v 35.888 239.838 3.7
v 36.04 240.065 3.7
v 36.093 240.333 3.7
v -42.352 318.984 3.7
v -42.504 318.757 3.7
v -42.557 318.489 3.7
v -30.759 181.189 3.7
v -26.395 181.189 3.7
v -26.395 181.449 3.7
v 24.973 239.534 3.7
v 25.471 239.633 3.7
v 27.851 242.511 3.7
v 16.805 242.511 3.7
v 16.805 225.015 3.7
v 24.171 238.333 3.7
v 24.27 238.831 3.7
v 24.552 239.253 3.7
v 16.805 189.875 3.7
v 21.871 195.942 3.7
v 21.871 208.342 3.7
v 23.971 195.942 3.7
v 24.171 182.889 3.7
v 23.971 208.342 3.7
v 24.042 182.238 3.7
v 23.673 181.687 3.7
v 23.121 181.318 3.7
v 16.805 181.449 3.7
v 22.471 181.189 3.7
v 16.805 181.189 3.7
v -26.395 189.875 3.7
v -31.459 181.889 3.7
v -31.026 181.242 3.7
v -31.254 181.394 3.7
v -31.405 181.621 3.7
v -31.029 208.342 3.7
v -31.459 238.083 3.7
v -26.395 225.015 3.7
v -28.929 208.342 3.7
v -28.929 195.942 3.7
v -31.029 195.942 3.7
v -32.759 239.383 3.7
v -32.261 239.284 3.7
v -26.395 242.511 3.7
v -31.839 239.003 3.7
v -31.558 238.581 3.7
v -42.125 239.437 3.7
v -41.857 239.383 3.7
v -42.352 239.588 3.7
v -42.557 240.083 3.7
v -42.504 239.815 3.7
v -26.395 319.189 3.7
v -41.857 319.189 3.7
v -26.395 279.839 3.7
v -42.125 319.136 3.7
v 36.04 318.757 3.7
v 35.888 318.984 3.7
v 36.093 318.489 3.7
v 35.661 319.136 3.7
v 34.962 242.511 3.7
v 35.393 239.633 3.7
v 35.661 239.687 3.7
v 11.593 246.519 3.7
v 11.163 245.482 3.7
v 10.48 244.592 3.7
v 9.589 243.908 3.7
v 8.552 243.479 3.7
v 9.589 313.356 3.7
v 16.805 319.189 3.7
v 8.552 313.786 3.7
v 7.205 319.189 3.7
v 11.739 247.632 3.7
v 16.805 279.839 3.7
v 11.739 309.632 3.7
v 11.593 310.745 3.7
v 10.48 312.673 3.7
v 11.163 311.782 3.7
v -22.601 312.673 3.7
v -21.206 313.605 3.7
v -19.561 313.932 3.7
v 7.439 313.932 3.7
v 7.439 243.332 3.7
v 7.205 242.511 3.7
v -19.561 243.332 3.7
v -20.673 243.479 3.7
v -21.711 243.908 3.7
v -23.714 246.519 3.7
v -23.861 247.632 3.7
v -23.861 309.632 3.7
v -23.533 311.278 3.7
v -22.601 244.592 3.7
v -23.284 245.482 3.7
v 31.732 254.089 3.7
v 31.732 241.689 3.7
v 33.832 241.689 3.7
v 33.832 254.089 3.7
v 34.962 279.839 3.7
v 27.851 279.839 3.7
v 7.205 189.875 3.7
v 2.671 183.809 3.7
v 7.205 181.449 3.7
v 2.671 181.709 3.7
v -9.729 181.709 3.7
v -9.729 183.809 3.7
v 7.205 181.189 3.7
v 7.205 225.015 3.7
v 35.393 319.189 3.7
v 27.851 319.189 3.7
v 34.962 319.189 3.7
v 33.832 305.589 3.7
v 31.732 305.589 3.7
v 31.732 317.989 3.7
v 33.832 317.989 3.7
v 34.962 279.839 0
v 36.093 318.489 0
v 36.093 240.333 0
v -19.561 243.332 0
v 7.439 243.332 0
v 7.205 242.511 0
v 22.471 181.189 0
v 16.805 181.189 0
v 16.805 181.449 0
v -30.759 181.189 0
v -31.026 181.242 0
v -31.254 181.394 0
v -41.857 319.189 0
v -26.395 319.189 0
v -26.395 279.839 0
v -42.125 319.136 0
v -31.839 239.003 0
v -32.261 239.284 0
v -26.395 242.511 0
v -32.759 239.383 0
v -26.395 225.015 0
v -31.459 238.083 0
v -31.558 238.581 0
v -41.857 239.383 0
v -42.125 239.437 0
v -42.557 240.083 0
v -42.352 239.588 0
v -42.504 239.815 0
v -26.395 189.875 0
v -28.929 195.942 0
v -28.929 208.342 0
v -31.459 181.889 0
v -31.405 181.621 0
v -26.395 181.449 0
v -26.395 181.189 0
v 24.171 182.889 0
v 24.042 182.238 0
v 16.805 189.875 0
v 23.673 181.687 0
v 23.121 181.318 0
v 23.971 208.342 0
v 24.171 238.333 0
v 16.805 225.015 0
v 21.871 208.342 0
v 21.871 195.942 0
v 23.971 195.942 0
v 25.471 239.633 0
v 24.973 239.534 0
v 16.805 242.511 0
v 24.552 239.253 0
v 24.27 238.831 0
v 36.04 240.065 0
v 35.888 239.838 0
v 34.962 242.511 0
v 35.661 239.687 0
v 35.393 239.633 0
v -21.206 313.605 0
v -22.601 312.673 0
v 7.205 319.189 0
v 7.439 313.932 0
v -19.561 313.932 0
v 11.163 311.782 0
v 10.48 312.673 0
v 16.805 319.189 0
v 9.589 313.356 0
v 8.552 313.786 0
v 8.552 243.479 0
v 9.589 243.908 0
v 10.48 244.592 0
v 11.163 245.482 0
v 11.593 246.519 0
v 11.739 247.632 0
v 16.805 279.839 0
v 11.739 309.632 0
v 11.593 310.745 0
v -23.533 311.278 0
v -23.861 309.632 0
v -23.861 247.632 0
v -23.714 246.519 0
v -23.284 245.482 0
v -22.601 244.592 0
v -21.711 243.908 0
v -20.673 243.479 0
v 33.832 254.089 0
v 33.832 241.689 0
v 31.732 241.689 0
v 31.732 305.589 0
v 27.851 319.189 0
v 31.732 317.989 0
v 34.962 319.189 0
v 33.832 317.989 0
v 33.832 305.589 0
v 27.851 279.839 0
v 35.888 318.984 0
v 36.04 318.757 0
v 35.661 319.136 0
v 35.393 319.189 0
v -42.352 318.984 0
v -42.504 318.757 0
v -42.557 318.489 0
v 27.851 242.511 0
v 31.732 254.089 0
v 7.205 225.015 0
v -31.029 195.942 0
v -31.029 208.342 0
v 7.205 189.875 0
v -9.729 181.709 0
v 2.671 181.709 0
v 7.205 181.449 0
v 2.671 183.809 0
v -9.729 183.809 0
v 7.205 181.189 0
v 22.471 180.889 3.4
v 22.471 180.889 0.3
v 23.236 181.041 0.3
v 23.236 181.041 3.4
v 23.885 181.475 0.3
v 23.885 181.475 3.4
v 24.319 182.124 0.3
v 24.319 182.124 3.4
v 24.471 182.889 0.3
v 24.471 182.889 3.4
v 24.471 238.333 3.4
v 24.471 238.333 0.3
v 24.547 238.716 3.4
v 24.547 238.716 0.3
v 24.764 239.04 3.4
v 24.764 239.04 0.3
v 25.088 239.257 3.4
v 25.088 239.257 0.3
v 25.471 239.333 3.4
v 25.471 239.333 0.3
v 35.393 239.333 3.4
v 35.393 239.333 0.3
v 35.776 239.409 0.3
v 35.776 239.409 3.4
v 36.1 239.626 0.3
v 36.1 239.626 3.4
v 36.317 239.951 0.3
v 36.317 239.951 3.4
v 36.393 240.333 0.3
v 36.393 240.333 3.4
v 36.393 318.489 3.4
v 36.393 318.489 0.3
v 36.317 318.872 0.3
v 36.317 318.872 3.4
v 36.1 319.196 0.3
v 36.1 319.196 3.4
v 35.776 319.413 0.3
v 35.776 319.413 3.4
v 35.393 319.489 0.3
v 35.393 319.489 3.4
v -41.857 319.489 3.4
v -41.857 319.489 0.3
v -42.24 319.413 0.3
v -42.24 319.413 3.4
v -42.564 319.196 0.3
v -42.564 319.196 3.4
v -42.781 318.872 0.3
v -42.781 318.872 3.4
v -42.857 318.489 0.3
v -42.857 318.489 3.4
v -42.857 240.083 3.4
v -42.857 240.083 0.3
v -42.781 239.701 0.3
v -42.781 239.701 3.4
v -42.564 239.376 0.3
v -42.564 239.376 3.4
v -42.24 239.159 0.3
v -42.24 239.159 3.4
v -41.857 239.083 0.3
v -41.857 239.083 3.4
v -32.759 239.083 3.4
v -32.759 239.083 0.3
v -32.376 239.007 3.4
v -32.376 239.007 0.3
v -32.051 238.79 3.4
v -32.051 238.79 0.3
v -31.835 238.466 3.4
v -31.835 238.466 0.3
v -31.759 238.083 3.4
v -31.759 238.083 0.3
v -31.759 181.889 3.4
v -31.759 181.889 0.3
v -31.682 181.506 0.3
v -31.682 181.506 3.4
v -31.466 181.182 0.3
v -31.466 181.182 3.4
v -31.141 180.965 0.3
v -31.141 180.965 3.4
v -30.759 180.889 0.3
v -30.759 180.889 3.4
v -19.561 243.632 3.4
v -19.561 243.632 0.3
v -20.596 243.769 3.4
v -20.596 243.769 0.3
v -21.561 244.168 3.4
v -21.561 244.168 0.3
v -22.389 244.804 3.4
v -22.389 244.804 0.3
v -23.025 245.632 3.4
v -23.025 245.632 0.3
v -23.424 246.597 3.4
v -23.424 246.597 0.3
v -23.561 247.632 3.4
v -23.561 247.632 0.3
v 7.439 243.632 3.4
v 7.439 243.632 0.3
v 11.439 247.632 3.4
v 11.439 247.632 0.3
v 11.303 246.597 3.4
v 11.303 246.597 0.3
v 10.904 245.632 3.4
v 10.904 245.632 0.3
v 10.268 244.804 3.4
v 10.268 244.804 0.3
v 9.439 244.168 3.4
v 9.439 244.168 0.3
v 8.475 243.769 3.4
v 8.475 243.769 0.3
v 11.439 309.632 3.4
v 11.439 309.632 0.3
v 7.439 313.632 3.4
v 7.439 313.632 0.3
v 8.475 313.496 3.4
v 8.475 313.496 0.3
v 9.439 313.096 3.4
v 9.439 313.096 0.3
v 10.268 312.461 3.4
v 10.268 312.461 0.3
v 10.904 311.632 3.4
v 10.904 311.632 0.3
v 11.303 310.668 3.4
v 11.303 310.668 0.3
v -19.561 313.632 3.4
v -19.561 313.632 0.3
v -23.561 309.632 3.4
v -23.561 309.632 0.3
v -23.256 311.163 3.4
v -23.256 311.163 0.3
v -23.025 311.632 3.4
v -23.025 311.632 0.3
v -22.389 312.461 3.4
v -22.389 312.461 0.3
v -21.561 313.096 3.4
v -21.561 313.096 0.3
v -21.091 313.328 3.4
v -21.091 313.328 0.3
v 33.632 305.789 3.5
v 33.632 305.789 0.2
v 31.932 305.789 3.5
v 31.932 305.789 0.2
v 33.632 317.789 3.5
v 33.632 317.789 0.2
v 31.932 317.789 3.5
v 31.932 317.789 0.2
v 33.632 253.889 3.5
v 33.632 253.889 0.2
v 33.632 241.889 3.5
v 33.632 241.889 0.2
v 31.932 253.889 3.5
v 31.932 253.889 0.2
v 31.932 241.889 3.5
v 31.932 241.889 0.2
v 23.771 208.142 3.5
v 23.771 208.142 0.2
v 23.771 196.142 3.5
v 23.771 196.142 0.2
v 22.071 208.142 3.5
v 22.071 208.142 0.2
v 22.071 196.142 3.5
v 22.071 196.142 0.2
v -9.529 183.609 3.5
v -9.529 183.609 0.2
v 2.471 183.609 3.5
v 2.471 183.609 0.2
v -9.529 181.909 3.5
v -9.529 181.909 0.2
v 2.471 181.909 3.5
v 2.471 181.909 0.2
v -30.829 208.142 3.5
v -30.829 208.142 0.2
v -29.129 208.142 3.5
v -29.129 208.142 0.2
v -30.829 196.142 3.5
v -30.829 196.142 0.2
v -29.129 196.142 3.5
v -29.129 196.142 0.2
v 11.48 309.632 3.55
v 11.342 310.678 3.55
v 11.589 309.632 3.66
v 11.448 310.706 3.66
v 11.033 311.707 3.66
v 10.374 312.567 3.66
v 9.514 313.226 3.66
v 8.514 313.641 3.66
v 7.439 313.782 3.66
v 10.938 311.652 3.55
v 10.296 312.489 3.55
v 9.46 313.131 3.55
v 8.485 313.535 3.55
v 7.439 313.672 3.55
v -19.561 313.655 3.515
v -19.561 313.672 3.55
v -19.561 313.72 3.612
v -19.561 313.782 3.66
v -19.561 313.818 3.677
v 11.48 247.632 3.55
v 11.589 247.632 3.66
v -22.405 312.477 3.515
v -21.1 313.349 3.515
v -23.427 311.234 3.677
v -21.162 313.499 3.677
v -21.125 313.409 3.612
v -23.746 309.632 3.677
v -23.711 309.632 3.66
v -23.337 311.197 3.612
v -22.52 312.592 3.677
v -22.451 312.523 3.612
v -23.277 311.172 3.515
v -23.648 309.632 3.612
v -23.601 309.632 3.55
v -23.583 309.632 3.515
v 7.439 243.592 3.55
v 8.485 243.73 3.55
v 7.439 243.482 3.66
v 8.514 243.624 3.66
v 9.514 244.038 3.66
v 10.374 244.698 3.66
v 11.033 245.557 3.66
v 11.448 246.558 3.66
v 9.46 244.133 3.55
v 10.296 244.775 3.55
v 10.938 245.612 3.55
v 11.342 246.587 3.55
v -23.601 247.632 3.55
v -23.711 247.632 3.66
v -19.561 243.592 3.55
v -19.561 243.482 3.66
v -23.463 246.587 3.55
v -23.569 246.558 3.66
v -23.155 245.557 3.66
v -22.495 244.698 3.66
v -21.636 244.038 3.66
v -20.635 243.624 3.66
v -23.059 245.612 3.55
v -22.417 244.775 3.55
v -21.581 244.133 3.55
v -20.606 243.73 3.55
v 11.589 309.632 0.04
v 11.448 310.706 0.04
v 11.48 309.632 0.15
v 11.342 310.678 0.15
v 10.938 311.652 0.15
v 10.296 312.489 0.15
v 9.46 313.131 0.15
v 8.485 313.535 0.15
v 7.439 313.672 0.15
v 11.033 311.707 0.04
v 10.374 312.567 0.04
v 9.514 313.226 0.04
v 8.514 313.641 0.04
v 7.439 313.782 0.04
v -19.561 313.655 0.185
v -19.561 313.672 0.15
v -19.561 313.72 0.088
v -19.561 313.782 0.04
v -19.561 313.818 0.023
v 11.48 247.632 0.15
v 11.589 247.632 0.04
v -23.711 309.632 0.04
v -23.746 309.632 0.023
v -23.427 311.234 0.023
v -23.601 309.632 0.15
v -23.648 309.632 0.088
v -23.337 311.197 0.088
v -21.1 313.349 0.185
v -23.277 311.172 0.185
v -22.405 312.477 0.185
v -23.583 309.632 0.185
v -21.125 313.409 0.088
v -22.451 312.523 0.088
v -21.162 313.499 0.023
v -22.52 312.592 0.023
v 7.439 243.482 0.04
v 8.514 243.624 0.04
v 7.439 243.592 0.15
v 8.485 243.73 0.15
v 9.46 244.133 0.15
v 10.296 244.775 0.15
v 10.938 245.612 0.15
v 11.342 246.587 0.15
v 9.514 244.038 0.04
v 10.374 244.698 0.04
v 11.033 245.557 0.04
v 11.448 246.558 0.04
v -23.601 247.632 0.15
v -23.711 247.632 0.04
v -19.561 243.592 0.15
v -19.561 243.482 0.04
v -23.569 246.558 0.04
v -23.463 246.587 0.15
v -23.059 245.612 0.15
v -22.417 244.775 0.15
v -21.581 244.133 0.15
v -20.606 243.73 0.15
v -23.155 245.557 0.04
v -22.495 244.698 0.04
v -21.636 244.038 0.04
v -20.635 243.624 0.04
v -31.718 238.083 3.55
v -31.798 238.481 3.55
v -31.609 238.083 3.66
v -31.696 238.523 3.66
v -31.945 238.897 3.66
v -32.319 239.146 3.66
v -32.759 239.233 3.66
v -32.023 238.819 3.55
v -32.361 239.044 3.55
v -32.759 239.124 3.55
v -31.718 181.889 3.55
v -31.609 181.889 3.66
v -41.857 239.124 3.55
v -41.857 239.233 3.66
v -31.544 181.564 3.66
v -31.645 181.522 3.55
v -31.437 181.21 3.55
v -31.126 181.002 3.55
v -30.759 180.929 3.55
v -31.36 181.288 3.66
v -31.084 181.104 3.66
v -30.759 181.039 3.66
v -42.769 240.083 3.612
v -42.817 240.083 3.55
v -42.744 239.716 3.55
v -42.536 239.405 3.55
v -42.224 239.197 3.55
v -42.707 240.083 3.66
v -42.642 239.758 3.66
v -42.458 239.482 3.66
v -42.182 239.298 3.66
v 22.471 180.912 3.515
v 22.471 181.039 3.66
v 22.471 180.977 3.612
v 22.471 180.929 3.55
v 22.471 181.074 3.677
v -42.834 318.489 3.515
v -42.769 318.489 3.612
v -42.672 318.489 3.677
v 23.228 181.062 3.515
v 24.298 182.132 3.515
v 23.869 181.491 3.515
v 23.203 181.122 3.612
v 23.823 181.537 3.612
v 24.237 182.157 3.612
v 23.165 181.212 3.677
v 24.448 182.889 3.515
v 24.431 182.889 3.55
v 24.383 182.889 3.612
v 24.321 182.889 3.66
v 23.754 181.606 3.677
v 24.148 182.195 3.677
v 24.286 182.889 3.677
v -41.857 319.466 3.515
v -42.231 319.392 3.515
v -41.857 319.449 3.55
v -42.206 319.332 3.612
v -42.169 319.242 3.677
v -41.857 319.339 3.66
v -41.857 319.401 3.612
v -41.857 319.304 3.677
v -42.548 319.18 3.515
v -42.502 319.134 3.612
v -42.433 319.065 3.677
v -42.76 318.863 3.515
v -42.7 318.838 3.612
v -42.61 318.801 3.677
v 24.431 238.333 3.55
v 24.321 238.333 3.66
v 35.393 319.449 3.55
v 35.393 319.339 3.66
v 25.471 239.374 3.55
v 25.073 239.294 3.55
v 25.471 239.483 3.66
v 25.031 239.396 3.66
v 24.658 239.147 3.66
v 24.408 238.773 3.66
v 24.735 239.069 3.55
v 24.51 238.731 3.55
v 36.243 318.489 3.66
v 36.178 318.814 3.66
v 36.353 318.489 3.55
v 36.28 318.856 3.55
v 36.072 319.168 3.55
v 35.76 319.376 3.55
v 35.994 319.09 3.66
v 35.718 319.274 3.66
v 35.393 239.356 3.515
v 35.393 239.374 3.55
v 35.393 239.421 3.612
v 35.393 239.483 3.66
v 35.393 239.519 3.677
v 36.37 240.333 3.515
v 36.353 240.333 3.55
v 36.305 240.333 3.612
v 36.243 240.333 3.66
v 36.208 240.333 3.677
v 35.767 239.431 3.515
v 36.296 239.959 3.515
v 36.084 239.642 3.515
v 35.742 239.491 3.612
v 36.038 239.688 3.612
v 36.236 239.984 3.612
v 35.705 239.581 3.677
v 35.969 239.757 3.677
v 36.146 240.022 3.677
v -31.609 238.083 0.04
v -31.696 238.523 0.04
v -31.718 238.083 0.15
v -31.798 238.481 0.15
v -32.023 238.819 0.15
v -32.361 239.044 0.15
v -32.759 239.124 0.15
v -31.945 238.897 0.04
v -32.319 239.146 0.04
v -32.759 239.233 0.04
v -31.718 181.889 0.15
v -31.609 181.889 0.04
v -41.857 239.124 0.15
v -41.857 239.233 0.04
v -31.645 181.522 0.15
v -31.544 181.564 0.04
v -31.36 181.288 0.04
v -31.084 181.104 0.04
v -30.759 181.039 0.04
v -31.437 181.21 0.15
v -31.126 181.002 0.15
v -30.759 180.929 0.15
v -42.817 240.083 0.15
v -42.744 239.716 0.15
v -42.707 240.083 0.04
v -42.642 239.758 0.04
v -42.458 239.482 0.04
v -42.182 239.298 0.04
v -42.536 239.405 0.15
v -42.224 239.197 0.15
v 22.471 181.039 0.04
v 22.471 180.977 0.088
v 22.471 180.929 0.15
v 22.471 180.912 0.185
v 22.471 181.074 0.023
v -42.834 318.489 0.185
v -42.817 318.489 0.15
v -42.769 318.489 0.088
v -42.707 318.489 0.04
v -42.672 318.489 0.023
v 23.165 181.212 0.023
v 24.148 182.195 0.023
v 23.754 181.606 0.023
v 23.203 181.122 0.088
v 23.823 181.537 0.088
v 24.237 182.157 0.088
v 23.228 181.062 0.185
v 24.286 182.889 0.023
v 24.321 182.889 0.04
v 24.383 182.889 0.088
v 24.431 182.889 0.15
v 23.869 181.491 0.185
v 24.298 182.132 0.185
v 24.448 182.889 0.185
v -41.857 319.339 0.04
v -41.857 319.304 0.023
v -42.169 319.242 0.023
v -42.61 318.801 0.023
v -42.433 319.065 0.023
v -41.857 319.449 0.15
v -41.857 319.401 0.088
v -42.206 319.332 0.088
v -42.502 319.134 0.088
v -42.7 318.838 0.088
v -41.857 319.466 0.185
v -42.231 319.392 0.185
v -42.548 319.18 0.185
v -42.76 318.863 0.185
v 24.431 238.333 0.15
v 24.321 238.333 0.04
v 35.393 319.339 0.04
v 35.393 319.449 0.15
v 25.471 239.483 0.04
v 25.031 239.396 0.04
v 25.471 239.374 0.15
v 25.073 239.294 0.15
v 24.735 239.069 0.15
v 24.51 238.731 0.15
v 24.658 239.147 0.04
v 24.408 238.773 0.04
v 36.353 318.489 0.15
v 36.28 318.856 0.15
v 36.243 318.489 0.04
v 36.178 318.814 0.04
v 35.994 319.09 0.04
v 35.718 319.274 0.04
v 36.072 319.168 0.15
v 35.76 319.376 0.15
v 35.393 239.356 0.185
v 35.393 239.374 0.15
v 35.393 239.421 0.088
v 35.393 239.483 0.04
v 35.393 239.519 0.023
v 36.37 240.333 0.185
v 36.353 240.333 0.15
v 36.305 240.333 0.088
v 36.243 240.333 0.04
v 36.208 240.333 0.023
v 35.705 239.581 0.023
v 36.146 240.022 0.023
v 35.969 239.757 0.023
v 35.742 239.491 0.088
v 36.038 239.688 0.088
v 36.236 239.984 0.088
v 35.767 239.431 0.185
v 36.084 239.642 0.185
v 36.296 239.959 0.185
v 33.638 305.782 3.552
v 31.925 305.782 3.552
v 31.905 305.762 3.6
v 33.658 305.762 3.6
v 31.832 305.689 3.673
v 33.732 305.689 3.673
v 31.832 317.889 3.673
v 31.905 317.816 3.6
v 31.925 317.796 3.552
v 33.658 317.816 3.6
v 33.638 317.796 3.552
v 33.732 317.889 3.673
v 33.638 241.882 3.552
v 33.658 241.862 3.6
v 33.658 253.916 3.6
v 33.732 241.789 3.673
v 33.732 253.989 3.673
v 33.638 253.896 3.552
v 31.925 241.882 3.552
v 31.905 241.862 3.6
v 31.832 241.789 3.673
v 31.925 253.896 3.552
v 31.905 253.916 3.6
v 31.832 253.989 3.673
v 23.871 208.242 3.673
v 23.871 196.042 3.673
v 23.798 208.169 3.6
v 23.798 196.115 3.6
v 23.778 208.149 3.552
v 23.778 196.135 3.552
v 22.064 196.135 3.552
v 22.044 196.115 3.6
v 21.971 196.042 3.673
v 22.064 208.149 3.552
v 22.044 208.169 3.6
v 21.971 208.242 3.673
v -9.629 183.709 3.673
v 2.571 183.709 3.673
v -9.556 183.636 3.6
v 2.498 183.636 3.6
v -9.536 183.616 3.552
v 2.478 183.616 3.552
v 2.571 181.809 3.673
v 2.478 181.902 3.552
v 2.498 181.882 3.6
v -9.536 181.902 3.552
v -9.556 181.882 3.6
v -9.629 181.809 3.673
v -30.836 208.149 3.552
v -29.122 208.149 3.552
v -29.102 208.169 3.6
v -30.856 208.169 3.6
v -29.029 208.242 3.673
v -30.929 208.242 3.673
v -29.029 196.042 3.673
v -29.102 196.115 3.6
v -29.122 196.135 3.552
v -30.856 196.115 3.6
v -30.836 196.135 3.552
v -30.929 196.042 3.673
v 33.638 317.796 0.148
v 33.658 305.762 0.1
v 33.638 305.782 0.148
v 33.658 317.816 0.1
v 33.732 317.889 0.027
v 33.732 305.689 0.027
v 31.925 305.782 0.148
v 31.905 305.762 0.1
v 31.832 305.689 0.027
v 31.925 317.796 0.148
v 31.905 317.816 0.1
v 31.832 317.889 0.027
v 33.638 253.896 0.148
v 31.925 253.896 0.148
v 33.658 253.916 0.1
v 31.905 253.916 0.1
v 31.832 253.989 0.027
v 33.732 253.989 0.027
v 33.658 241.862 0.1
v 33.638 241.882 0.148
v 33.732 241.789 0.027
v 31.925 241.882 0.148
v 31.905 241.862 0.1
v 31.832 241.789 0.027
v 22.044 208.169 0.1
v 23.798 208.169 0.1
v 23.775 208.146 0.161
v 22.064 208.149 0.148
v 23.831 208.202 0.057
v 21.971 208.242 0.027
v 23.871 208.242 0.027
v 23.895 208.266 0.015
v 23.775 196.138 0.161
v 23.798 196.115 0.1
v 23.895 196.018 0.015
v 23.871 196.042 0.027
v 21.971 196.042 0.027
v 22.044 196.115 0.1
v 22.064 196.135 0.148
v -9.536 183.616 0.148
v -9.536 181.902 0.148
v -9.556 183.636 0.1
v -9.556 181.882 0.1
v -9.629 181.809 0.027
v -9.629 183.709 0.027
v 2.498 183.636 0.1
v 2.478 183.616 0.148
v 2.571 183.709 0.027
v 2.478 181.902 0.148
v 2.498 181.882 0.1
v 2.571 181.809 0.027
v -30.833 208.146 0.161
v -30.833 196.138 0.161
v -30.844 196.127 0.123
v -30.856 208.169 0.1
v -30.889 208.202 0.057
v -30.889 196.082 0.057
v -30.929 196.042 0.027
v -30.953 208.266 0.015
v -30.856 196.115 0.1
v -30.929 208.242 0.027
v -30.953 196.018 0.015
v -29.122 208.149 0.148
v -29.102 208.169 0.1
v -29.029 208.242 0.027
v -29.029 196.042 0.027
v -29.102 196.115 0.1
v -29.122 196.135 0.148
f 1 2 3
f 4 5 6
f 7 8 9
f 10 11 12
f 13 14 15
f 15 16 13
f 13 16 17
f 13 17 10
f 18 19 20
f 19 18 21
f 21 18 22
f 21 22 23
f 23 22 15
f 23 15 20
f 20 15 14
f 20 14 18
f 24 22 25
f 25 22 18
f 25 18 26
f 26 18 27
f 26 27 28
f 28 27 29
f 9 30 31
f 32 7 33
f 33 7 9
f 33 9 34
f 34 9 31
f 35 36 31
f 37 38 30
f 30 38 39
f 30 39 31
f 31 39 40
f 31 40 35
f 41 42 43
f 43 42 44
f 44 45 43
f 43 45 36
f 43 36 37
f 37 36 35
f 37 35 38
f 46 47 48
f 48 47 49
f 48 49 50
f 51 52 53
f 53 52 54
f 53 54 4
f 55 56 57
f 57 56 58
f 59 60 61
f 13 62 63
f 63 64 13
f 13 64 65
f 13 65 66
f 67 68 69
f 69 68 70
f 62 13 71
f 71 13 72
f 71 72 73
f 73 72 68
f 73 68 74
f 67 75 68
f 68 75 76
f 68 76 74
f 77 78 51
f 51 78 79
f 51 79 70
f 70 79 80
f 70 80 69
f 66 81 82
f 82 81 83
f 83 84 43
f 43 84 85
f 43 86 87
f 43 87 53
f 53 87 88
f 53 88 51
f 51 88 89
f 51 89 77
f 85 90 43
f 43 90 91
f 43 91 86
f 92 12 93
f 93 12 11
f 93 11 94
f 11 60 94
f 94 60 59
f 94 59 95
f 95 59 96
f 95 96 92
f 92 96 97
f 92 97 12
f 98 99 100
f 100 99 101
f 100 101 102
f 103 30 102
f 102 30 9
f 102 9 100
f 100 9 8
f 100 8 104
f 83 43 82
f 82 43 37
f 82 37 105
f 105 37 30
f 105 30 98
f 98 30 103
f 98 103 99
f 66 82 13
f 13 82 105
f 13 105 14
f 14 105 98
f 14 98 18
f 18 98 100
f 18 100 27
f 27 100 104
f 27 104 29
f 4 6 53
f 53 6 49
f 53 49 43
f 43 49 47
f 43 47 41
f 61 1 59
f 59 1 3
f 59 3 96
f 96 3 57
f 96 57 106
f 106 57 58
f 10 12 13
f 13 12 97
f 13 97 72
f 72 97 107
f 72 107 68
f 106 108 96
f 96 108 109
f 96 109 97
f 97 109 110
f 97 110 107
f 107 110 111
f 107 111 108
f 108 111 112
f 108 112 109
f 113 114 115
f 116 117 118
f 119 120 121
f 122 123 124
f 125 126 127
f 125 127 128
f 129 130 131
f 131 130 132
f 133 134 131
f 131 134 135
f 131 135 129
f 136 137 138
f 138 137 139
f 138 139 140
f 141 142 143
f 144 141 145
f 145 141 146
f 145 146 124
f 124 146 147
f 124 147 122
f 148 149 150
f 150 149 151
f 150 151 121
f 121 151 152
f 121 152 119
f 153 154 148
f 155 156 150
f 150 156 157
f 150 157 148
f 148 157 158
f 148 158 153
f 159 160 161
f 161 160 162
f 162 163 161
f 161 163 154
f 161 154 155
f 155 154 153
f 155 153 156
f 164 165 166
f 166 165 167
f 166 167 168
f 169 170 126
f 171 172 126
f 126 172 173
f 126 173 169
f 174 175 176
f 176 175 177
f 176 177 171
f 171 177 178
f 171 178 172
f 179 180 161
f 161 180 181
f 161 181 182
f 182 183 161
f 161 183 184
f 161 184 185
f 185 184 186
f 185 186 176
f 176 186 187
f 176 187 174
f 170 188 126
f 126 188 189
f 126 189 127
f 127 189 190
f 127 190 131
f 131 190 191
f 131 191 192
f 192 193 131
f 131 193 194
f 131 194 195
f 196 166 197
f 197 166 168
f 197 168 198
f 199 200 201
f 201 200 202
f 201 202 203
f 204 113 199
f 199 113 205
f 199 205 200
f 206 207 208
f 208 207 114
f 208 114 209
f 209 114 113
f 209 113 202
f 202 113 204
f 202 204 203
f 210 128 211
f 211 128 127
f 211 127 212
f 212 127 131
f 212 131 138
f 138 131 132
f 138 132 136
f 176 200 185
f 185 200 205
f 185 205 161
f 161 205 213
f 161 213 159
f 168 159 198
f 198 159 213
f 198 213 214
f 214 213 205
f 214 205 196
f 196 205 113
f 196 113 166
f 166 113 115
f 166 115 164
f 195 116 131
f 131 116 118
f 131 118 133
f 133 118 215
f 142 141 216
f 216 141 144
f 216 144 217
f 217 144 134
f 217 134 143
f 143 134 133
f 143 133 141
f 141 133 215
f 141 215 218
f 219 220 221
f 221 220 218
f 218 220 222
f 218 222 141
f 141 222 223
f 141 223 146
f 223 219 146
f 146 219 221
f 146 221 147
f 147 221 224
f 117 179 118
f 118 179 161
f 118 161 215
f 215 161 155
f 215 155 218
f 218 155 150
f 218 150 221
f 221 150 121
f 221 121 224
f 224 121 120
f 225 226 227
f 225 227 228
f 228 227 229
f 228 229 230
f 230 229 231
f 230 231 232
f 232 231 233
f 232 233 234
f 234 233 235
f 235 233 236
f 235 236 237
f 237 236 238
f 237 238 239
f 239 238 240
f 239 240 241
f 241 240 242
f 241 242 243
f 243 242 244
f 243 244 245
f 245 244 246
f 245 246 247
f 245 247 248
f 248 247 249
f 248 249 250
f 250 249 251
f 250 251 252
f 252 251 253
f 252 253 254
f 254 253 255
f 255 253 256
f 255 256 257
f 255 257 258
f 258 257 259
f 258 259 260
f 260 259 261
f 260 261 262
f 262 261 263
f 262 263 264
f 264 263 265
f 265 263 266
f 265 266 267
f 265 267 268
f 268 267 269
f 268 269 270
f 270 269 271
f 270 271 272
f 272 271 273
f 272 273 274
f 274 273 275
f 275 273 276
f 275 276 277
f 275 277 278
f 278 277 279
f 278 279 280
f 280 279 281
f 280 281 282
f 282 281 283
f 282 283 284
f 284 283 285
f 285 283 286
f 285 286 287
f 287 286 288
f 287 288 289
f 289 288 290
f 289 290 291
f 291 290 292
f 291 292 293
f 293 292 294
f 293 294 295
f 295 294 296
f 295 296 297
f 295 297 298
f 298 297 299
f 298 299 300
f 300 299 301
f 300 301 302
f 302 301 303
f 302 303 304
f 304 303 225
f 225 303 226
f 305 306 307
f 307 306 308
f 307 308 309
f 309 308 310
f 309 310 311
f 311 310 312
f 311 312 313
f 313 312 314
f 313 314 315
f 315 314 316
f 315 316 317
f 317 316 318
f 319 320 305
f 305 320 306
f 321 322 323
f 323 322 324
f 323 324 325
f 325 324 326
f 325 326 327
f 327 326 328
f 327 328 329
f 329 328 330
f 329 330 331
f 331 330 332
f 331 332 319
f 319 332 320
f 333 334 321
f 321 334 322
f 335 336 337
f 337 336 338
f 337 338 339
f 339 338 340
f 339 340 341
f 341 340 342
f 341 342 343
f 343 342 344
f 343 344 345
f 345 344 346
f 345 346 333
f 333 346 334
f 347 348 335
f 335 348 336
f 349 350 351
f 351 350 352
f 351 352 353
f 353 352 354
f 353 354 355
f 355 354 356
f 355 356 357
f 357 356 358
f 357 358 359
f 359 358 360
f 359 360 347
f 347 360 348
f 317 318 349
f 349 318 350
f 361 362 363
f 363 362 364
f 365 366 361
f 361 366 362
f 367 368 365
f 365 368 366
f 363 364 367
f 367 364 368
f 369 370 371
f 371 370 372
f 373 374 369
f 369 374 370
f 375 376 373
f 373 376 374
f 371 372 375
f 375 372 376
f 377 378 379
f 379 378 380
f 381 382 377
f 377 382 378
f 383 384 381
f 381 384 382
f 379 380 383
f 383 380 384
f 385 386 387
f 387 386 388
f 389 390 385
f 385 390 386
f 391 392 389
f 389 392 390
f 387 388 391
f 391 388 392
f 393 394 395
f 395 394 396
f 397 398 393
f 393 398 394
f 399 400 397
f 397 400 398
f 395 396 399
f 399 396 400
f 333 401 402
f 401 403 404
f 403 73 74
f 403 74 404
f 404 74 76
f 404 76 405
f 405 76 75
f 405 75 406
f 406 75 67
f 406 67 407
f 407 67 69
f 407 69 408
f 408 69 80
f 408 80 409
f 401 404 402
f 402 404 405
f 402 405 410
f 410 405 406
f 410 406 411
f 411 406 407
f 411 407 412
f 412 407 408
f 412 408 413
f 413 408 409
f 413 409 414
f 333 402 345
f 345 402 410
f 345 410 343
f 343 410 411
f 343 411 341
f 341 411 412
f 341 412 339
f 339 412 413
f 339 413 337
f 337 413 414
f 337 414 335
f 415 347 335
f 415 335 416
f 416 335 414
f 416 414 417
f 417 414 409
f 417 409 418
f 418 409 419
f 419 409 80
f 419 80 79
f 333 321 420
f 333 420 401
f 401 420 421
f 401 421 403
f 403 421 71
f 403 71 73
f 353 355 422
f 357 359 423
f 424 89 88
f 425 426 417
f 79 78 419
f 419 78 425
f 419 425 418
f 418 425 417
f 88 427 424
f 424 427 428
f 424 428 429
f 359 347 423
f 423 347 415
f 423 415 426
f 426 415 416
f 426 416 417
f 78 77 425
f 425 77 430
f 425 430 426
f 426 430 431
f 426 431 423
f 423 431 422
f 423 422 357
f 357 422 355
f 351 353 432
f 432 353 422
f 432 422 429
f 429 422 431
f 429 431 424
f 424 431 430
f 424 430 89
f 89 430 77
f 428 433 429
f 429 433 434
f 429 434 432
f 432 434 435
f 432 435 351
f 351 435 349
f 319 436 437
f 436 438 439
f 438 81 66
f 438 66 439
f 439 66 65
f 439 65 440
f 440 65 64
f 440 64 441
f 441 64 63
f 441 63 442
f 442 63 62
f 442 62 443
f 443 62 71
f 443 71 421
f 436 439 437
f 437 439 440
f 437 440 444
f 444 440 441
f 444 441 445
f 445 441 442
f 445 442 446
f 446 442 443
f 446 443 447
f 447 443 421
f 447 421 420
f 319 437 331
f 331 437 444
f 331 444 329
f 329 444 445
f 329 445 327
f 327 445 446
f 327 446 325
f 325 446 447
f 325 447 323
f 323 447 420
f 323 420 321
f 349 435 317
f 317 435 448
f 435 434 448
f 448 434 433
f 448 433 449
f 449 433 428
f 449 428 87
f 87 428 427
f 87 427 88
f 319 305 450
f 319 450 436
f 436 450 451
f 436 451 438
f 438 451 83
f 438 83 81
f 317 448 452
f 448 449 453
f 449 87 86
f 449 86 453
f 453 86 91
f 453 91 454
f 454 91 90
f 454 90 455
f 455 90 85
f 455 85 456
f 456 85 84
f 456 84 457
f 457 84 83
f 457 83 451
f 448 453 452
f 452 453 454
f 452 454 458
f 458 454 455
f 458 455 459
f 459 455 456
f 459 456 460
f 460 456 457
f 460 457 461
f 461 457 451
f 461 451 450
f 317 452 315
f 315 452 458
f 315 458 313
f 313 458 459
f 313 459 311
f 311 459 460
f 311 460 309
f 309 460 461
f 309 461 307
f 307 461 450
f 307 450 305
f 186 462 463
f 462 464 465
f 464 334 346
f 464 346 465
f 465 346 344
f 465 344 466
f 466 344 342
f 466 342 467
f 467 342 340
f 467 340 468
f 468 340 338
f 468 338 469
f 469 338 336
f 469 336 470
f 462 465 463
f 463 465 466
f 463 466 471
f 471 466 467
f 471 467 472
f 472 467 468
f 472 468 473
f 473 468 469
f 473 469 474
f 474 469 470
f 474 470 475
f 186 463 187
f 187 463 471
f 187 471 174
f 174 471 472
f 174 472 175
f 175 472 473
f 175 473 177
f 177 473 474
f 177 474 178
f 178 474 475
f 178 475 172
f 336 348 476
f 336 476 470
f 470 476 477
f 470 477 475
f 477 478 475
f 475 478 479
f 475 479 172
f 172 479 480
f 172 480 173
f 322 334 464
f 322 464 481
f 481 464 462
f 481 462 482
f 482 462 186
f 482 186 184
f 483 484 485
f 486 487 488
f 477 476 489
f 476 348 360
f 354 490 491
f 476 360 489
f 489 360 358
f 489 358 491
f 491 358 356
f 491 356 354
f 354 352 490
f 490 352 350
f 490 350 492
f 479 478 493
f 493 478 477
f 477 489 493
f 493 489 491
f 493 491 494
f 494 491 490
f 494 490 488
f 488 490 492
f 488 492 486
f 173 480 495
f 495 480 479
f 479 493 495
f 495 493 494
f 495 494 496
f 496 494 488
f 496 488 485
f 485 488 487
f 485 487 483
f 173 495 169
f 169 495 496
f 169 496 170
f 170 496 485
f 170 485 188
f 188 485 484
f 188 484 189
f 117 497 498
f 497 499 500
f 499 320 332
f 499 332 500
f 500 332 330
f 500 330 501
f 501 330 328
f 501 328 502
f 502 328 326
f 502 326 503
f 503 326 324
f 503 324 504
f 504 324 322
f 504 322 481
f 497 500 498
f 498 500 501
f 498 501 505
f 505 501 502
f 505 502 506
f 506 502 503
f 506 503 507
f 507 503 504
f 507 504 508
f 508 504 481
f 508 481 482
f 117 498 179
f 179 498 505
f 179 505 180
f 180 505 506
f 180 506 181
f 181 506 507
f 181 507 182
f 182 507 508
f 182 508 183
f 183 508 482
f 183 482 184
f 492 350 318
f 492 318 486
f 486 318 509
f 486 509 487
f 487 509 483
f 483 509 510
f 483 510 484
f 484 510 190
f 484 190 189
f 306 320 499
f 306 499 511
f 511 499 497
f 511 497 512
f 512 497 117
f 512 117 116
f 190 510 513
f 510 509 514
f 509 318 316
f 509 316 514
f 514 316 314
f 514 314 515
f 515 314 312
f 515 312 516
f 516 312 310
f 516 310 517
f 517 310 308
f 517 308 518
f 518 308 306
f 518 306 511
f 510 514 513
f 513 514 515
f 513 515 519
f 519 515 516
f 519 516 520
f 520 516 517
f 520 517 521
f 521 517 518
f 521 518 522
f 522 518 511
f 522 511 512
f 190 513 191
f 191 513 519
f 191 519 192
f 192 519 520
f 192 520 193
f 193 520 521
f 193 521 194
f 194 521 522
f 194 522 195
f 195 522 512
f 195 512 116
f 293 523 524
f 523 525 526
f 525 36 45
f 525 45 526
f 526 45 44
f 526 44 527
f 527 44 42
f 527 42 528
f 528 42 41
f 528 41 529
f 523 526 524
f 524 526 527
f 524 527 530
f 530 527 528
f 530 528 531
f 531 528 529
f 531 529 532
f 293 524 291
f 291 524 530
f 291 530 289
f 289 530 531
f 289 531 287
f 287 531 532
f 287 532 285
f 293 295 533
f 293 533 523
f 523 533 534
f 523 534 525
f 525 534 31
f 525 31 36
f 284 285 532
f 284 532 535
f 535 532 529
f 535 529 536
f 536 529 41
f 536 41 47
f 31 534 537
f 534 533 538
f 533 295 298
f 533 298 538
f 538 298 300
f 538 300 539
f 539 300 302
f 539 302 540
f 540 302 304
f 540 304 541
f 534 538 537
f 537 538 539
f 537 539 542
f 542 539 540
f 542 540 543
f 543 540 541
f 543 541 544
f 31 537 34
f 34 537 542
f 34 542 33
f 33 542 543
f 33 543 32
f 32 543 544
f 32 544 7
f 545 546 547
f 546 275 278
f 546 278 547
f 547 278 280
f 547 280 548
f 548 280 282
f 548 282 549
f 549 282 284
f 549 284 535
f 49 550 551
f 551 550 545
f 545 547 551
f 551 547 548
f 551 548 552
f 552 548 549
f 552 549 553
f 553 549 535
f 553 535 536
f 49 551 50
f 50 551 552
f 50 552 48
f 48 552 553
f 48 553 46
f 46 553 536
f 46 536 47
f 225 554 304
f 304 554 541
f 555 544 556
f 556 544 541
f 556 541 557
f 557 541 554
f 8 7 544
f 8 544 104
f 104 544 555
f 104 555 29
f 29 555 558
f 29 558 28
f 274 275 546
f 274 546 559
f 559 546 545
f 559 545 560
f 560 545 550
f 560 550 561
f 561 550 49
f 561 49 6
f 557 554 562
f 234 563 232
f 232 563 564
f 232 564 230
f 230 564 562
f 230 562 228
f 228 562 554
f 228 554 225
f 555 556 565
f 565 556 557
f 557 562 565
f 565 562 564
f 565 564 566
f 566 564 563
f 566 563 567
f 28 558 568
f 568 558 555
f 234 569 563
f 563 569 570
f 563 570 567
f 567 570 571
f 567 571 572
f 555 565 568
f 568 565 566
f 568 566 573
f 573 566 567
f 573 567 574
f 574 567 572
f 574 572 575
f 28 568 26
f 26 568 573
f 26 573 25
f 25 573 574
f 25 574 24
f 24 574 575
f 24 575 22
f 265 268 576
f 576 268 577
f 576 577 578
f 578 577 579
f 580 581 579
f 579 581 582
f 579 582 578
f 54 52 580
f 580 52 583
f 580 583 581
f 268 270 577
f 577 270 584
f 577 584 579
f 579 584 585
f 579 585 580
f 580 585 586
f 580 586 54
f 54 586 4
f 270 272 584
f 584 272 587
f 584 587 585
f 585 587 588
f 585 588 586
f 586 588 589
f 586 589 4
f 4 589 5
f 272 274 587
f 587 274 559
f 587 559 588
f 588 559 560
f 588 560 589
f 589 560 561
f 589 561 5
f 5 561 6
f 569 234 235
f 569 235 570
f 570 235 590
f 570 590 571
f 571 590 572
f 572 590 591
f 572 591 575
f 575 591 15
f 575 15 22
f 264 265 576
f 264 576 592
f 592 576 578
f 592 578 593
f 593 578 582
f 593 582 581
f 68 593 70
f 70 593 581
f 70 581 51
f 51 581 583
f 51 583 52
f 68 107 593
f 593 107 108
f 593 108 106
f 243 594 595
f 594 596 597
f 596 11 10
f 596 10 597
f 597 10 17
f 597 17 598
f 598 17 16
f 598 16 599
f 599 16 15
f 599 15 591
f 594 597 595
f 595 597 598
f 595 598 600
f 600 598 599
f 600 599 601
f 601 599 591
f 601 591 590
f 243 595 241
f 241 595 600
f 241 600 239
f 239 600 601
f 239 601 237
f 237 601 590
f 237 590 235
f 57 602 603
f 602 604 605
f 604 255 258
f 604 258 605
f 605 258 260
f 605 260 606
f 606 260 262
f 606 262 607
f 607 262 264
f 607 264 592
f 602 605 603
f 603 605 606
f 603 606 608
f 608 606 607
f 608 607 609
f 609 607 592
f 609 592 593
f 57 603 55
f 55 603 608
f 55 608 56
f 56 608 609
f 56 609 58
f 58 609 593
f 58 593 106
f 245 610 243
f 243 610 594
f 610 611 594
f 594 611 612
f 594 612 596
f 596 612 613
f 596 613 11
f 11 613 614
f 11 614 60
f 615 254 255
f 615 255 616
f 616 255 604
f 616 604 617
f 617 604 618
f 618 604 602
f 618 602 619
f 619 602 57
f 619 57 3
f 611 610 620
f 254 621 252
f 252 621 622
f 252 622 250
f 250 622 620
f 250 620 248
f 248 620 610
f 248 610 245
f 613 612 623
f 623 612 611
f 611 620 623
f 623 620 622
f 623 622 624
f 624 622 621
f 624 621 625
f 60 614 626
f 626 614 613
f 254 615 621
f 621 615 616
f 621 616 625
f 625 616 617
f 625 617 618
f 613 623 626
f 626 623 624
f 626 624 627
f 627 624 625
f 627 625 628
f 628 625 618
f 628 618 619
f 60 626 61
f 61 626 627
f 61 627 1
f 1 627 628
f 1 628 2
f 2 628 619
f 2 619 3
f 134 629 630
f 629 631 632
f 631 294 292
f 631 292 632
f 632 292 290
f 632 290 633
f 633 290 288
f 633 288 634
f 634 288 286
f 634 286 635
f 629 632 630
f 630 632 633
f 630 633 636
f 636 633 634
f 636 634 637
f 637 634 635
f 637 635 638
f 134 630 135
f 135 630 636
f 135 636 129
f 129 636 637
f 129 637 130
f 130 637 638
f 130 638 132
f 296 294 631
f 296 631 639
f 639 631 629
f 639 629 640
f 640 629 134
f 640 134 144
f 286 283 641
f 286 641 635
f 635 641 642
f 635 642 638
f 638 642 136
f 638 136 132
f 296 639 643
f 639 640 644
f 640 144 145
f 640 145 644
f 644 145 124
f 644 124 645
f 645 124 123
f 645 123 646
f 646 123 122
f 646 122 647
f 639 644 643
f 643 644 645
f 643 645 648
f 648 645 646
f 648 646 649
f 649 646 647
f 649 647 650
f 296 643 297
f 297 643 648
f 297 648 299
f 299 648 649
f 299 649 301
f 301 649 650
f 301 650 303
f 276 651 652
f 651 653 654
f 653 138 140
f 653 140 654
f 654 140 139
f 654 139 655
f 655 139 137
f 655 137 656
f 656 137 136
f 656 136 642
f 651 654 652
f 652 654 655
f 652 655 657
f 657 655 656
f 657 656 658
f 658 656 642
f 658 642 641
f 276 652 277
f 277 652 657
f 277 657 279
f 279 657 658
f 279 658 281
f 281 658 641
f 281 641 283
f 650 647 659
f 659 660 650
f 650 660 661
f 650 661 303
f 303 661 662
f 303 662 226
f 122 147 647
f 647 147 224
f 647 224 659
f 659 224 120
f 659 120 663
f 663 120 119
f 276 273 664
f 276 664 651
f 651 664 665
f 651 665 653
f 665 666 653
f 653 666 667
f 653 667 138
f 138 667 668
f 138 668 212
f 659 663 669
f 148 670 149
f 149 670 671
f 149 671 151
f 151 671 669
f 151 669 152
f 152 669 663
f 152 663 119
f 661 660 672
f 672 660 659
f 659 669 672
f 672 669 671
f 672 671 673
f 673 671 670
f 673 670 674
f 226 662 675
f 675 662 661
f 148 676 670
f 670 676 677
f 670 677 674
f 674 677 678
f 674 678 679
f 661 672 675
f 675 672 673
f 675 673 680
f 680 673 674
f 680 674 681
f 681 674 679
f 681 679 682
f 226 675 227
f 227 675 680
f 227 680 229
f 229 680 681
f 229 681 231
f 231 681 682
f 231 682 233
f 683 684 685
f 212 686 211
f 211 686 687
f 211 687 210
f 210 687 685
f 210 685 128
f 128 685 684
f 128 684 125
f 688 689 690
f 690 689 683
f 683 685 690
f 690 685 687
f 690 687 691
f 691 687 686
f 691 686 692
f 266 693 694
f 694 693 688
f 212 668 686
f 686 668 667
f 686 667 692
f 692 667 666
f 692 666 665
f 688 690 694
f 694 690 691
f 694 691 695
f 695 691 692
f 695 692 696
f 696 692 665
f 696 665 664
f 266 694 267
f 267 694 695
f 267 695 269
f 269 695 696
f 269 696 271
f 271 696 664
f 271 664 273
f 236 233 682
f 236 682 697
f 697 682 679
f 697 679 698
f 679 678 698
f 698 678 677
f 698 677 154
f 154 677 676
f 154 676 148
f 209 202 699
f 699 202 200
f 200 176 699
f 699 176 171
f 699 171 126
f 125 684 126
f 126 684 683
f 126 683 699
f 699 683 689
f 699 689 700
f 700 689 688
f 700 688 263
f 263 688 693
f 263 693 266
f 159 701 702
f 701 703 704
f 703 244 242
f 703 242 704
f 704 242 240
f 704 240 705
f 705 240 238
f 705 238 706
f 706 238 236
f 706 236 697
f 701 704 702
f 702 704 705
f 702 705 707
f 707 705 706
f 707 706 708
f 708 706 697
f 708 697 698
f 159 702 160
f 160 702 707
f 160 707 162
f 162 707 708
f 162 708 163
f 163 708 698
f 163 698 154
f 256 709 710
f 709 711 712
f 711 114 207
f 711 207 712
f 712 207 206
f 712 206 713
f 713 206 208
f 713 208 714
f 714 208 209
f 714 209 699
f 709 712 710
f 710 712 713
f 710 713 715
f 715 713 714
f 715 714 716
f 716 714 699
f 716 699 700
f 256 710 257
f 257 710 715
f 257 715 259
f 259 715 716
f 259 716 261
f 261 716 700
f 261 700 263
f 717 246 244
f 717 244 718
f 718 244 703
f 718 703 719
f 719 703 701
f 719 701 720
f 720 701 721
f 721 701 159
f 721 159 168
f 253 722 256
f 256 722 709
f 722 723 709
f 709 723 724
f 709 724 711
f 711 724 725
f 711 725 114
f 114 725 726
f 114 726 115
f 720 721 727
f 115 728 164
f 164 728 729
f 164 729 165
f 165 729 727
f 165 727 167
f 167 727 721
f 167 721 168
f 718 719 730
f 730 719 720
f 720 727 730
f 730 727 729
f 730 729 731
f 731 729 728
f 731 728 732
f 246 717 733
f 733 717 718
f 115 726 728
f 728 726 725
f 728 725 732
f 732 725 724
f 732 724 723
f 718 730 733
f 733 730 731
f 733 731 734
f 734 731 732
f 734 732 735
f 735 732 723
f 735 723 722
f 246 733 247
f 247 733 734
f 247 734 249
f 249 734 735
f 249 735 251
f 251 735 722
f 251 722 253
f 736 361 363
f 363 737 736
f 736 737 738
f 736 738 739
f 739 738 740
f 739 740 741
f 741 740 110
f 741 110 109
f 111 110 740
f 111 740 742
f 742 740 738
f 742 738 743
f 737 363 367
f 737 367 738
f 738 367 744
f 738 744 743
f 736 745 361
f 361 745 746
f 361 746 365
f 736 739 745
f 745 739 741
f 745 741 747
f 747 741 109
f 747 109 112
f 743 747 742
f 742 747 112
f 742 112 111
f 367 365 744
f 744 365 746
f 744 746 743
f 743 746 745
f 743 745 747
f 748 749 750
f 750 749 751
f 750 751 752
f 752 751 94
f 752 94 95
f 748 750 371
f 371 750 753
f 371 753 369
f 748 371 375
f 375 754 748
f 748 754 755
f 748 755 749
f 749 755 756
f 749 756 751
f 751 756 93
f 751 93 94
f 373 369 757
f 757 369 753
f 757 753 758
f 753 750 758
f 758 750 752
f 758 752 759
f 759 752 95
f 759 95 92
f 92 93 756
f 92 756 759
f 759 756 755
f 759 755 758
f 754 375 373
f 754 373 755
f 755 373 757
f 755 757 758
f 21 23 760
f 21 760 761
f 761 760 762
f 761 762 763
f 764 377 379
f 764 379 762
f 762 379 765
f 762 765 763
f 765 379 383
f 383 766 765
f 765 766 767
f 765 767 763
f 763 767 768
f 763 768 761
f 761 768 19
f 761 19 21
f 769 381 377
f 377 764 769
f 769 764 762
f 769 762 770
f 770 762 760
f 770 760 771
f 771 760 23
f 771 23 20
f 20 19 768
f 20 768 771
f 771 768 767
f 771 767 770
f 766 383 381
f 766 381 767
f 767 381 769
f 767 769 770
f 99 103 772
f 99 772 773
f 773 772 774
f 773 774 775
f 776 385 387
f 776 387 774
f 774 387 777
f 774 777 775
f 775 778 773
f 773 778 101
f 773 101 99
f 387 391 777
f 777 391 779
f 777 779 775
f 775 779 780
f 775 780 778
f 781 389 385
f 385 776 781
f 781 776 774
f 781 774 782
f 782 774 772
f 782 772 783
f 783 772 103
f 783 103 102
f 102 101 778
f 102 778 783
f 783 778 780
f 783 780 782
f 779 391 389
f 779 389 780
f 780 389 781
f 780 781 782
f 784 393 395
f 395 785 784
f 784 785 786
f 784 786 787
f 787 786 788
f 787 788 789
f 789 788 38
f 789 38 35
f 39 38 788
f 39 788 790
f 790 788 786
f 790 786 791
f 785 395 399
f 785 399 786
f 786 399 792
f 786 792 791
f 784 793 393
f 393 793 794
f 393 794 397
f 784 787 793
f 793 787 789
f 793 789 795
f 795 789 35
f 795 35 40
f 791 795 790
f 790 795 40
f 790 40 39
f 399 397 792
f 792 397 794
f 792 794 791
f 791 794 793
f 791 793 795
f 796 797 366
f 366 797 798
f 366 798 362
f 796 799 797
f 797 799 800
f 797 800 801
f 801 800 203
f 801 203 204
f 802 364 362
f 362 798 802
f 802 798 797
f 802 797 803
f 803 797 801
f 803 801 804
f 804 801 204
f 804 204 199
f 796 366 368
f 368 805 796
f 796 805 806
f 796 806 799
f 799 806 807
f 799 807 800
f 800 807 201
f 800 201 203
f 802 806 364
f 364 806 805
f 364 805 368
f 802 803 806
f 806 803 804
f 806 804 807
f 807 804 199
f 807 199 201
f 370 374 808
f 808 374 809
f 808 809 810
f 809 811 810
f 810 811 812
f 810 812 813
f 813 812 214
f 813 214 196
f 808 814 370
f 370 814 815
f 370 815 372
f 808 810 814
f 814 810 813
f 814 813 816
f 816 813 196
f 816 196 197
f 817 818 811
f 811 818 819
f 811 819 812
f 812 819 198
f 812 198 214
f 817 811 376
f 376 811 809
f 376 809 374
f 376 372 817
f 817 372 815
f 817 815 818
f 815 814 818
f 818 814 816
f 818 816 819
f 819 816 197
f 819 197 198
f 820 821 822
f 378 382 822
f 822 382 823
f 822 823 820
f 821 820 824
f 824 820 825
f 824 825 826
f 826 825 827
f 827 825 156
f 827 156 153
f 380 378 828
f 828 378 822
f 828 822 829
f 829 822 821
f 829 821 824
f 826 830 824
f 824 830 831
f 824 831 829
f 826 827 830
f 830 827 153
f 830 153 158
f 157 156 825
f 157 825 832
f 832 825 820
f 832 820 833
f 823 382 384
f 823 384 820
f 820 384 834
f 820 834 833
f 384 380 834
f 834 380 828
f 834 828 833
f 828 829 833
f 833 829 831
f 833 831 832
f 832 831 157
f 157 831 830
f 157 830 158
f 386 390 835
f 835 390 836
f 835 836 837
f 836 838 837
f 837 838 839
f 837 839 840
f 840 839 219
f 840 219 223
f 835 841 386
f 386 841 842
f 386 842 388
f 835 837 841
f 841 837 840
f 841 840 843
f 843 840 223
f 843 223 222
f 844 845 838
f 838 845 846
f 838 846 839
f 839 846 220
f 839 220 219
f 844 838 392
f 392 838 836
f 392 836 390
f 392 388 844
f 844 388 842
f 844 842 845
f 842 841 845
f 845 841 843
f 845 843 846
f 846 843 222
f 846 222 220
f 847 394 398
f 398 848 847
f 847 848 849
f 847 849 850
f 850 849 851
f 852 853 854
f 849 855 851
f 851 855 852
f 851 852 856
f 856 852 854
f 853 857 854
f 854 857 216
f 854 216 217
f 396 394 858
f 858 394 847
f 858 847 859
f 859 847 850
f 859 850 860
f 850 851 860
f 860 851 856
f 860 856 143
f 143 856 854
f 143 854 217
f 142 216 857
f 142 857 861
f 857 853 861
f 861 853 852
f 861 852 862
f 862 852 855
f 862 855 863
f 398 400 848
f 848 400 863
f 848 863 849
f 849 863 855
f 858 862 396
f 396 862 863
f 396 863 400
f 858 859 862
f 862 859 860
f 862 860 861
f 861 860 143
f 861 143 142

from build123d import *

# Parameters (mm, degrees)
BOSS_EXTRUDE1_DEPTH = 3.7
SKETCH2_W           = 1.7
SKETCH2_H           = 12
SKETCH2_W_2         = 12
SKETCH2_H_2         = 1.7
CUT_EXTRUDE1_DEPTH  = 4
FILLET1_R           = 0.3
FILLET2_R           = 0.2


with BuildPart() as part:
    # Sketch1 → Boss-Extrude1 (new body)
    with BuildSketch(Plane.XY):
        with BuildLine():
            Line((25.47092131, 239.333331526), (35.393009955, 239.333331526))
            ThreePointArc((35.393009955, 239.333331526), (36.100116737, 239.626224745), (36.393009955, 240.333331526))
            Line((36.393009955, 240.333331526), (36.393009955, 318.489057253))
            ThreePointArc((36.393009955, 318.489057253), (36.100116737, 319.196164034), (35.393009955, 319.489057253))
            Line((35.393009955, 319.489057253), (-41.856990045, 319.489057253))
            ThreePointArc((-41.856990045, 319.489057253), (-42.564096826, 319.196164034), (-42.856990045, 318.489057253))
            Line((-42.856990045, 318.489057253), (-42.856990045, 240.083331526))
            ThreePointArc((-42.856990045, 240.083331526), (-42.564096826, 239.376224745), (-41.856990045, 239.083331526))
            Line((-41.856990045, 239.083331526), (-32.758604141, 239.083331526))
            ThreePointArc((-32.758604141, 239.083331526), (-32.05149736, 238.790438307), (-31.758604141, 238.083331526))
            Line((-31.758604141, 238.083331526), (-31.758604141, 181.889057196))
            ThreePointArc((-31.758604141, 181.889057196), (-31.465710922, 181.181950415), (-30.758604141, 180.889057196))
            Line((-30.758604141, 180.889057196), (22.47092131, 180.889057196))
            ThreePointArc((22.47092131, 180.889057196), (23.885134873, 181.474843634), (24.47092131, 182.889057196))
            Line((24.47092131, 182.889057196), (24.47092131, 238.333331526))
            ThreePointArc((24.47092131, 238.333331526), (24.763814529, 239.040438307), (25.47092131, 239.333331526))
        make_face()
        with BuildLine():
            Line((-19.56052606, 313.632292469), (7.43947394, 313.632292469))
            ThreePointArc((7.43947394, 313.632292469), (10.267901064, 312.460719594), (11.43947394, 309.632292469))
            Line((11.43947394, 309.632292469), (11.43947394, 247.632292469))
            ThreePointArc((11.43947394, 247.632292469), (10.267901064, 244.803865345), (7.43947394, 243.632292469))
            Line((7.43947394, 243.632292469), (-19.56052606, 243.632292469))
            ThreePointArc((-19.56052606, 243.632292469), (-22.388953185, 244.803865345), (-23.56052606, 247.632292469))
            Line((-23.56052606, 247.632292469), (-23.56052606, 309.632292469))
            ThreePointArc((-23.56052606, 309.632292469), (-22.388953185, 312.460719594), (-19.56052606, 313.632292469))
        make_face(mode=Mode.SUBTRACT)
    extrude(amount=BOSS_EXTRUDE1_DEPTH)

    # Sketch2 → Cut-Extrude1 (cut)
    with BuildSketch(Plane(origin=(0, 0, 0), x_dir=(-1, 0, 0), z_dir=(0, 0, -1))):
        with Locations((29.979078689, 202.141797546)):
            Rectangle(SKETCH2_W, SKETCH2_H)
        with Locations((3.52907869, 182.759057196)):
            Rectangle(SKETCH2_W_2, SKETCH2_H_2)
        with Locations((-22.92092131, 202.141797546)):
            Rectangle(SKETCH2_W, SKETCH2_H)
        with Locations((-32.781605347, 247.889057196)):
            Rectangle(SKETCH2_W, SKETCH2_H)
        with Locations((-32.781605347, 311.789057196)):
            Rectangle(SKETCH2_W, SKETCH2_H)
    extrude(amount=-CUT_EXTRUDE1_DEPTH, mode=Mode.SUBTRACT)

    # Fillet1
    fillet1_edges = [part.edges().sort_by_distance(p)[0] for p in [
        (24.763814529, 239.040438307, 3.7),
        (-4.143841415, 180.889057196, 0),
        (-31.465710922, 181.181950415, 0),
        (-31.758604141, 209.986194361, 0),
        (30.431965633, 239.333331526, 3.7),
        (-32.05149736, 238.790438307, 0),
        (-37.307797093, 239.083331526, 0),
        (-42.564096826, 239.376224745, 0),
        (-42.856990045, 279.286194389, 0),
        (-42.564096826, 319.196164034, 0),
        (-3.231990045, 319.489057253, 0),
        (36.100116737, 319.196164034, 0),
        (36.393009955, 279.411194389, 0),
        (36.100116737, 239.626224745, 0),
        (30.431965633, 239.333331526, 0),
        (36.100116737, 239.626224745, 3.7),
        (24.763814529, 239.040438307, 0),
        (24.47092131, 210.611194361, 0),
        (23.885134873, 181.474843634, 0),
        (36.393009955, 279.411194389, 3.7),
        (36.100116737, 319.196164034, 3.7),
        (-3.231990045, 319.489057253, 3.7),
        (-42.564096826, 319.196164034, 3.7),
        (-42.856990045, 279.286194389, 3.7),
        (-42.564096826, 239.376224745, 3.7),
        (-22.388953185, 244.803865345, 0),
        (-6.06052606, 243.632292469, 0),
        (10.267901064, 244.803865345, 0),
        (11.43947394, 278.632292469, 0),
        (10.267901064, 312.460719594, 0),
        (-6.06052606, 313.632292469, 0),
        (-22.388953185, 312.460719594, 0),
        (-23.56052606, 278.632292469, 0),
        (-37.307797093, 239.083331526, 3.7),
        (-22.388953185, 244.803865345, 3.7),
        (-6.06052606, 243.632292469, 3.7),
        (10.267901064, 244.803865345, 3.7),
        (23.885134873, 181.474843634, 3.7),
        (11.43947394, 278.632292469, 3.7),
        (10.267901064, 312.460719594, 3.7),
        (-6.06052606, 313.632292469, 3.7),
        (-22.388953185, 312.460719594, 3.7),
        (-23.56052606, 278.632292469, 3.7),
        (-32.05149736, 238.790438307, 3.7),
        (-31.758604141, 209.986194361, 3.7),
        (-31.465710922, 181.181950415, 3.7),
        (-4.143841415, 180.889057196, 3.7),
        (24.47092131, 210.611194361, 3.7),
    ]]
    fillet(fillet1_edges, radius=FILLET1_R)

    # Fillet2
    fillet2_edges = [part.edges().sort_by_distance(p)[0] for p in [
        (-3.52907869, 183.609057196, 3.7),
        (-9.52907869, 182.759057196, 3.7),
        (-3.52907869, 181.909057196, 3.7),
        (2.47092131, 182.759057196, 3.7),
        (-3.52907869, 183.609057196, 0),
        (2.47092131, 182.759057196, 0),
        (-3.52907869, 181.909057196, 0),
        (-9.52907869, 182.759057196, 0),
        (23.77092131, 202.141797546, 3.7),
        (22.92092131, 208.141797546, 3.7),
        (22.07092131, 202.141797546, 3.7),
        (22.92092131, 196.141797546, 3.7),
        (23.77092131, 202.141797546, 0),
        (22.92092131, 196.141797546, 0),
        (22.07092131, 202.141797546, 0),
        (22.92092131, 208.141797546, 0),
        (33.631605347, 247.889057196, 3.7),
        (32.781605347, 253.889057196, 3.7),
        (31.931605347, 247.889057196, 3.7),
        (32.781605347, 241.889057196, 3.7),
        (33.631605347, 247.889057196, 0),
        (32.781605347, 241.889057196, 0),
        (31.931605347, 247.889057196, 0),
        (32.781605347, 253.889057196, 0),
        (32.781605347, 305.789057196, 3.7),
        (33.631605347, 311.789057196, 3.7),
        (32.781605347, 317.789057196, 3.7),
        (31.931605347, 311.789057196, 3.7),
        (32.781605347, 305.789057196, 0),
        (31.931605347, 311.789057196, 0),
        (32.781605347, 317.789057196, 0),
        (33.631605347, 311.789057196, 0),
        (-29.979078689, 208.141797546, 3.7),
        (-30.829078689, 202.141797546, 3.7),
        (-29.979078689, 196.141797546, 3.7),
        (-29.129078689, 202.141797546, 3.7),
        (-29.979078689, 208.141797546, 0),
        (-29.129078689, 202.141797546, 0),
        (-29.979078689, 196.141797546, 0),
        (-30.829078689, 202.141797546, 0),
    ]]
    fillet(fillet2_edges, radius=FILLET2_R)


solid = part.part
